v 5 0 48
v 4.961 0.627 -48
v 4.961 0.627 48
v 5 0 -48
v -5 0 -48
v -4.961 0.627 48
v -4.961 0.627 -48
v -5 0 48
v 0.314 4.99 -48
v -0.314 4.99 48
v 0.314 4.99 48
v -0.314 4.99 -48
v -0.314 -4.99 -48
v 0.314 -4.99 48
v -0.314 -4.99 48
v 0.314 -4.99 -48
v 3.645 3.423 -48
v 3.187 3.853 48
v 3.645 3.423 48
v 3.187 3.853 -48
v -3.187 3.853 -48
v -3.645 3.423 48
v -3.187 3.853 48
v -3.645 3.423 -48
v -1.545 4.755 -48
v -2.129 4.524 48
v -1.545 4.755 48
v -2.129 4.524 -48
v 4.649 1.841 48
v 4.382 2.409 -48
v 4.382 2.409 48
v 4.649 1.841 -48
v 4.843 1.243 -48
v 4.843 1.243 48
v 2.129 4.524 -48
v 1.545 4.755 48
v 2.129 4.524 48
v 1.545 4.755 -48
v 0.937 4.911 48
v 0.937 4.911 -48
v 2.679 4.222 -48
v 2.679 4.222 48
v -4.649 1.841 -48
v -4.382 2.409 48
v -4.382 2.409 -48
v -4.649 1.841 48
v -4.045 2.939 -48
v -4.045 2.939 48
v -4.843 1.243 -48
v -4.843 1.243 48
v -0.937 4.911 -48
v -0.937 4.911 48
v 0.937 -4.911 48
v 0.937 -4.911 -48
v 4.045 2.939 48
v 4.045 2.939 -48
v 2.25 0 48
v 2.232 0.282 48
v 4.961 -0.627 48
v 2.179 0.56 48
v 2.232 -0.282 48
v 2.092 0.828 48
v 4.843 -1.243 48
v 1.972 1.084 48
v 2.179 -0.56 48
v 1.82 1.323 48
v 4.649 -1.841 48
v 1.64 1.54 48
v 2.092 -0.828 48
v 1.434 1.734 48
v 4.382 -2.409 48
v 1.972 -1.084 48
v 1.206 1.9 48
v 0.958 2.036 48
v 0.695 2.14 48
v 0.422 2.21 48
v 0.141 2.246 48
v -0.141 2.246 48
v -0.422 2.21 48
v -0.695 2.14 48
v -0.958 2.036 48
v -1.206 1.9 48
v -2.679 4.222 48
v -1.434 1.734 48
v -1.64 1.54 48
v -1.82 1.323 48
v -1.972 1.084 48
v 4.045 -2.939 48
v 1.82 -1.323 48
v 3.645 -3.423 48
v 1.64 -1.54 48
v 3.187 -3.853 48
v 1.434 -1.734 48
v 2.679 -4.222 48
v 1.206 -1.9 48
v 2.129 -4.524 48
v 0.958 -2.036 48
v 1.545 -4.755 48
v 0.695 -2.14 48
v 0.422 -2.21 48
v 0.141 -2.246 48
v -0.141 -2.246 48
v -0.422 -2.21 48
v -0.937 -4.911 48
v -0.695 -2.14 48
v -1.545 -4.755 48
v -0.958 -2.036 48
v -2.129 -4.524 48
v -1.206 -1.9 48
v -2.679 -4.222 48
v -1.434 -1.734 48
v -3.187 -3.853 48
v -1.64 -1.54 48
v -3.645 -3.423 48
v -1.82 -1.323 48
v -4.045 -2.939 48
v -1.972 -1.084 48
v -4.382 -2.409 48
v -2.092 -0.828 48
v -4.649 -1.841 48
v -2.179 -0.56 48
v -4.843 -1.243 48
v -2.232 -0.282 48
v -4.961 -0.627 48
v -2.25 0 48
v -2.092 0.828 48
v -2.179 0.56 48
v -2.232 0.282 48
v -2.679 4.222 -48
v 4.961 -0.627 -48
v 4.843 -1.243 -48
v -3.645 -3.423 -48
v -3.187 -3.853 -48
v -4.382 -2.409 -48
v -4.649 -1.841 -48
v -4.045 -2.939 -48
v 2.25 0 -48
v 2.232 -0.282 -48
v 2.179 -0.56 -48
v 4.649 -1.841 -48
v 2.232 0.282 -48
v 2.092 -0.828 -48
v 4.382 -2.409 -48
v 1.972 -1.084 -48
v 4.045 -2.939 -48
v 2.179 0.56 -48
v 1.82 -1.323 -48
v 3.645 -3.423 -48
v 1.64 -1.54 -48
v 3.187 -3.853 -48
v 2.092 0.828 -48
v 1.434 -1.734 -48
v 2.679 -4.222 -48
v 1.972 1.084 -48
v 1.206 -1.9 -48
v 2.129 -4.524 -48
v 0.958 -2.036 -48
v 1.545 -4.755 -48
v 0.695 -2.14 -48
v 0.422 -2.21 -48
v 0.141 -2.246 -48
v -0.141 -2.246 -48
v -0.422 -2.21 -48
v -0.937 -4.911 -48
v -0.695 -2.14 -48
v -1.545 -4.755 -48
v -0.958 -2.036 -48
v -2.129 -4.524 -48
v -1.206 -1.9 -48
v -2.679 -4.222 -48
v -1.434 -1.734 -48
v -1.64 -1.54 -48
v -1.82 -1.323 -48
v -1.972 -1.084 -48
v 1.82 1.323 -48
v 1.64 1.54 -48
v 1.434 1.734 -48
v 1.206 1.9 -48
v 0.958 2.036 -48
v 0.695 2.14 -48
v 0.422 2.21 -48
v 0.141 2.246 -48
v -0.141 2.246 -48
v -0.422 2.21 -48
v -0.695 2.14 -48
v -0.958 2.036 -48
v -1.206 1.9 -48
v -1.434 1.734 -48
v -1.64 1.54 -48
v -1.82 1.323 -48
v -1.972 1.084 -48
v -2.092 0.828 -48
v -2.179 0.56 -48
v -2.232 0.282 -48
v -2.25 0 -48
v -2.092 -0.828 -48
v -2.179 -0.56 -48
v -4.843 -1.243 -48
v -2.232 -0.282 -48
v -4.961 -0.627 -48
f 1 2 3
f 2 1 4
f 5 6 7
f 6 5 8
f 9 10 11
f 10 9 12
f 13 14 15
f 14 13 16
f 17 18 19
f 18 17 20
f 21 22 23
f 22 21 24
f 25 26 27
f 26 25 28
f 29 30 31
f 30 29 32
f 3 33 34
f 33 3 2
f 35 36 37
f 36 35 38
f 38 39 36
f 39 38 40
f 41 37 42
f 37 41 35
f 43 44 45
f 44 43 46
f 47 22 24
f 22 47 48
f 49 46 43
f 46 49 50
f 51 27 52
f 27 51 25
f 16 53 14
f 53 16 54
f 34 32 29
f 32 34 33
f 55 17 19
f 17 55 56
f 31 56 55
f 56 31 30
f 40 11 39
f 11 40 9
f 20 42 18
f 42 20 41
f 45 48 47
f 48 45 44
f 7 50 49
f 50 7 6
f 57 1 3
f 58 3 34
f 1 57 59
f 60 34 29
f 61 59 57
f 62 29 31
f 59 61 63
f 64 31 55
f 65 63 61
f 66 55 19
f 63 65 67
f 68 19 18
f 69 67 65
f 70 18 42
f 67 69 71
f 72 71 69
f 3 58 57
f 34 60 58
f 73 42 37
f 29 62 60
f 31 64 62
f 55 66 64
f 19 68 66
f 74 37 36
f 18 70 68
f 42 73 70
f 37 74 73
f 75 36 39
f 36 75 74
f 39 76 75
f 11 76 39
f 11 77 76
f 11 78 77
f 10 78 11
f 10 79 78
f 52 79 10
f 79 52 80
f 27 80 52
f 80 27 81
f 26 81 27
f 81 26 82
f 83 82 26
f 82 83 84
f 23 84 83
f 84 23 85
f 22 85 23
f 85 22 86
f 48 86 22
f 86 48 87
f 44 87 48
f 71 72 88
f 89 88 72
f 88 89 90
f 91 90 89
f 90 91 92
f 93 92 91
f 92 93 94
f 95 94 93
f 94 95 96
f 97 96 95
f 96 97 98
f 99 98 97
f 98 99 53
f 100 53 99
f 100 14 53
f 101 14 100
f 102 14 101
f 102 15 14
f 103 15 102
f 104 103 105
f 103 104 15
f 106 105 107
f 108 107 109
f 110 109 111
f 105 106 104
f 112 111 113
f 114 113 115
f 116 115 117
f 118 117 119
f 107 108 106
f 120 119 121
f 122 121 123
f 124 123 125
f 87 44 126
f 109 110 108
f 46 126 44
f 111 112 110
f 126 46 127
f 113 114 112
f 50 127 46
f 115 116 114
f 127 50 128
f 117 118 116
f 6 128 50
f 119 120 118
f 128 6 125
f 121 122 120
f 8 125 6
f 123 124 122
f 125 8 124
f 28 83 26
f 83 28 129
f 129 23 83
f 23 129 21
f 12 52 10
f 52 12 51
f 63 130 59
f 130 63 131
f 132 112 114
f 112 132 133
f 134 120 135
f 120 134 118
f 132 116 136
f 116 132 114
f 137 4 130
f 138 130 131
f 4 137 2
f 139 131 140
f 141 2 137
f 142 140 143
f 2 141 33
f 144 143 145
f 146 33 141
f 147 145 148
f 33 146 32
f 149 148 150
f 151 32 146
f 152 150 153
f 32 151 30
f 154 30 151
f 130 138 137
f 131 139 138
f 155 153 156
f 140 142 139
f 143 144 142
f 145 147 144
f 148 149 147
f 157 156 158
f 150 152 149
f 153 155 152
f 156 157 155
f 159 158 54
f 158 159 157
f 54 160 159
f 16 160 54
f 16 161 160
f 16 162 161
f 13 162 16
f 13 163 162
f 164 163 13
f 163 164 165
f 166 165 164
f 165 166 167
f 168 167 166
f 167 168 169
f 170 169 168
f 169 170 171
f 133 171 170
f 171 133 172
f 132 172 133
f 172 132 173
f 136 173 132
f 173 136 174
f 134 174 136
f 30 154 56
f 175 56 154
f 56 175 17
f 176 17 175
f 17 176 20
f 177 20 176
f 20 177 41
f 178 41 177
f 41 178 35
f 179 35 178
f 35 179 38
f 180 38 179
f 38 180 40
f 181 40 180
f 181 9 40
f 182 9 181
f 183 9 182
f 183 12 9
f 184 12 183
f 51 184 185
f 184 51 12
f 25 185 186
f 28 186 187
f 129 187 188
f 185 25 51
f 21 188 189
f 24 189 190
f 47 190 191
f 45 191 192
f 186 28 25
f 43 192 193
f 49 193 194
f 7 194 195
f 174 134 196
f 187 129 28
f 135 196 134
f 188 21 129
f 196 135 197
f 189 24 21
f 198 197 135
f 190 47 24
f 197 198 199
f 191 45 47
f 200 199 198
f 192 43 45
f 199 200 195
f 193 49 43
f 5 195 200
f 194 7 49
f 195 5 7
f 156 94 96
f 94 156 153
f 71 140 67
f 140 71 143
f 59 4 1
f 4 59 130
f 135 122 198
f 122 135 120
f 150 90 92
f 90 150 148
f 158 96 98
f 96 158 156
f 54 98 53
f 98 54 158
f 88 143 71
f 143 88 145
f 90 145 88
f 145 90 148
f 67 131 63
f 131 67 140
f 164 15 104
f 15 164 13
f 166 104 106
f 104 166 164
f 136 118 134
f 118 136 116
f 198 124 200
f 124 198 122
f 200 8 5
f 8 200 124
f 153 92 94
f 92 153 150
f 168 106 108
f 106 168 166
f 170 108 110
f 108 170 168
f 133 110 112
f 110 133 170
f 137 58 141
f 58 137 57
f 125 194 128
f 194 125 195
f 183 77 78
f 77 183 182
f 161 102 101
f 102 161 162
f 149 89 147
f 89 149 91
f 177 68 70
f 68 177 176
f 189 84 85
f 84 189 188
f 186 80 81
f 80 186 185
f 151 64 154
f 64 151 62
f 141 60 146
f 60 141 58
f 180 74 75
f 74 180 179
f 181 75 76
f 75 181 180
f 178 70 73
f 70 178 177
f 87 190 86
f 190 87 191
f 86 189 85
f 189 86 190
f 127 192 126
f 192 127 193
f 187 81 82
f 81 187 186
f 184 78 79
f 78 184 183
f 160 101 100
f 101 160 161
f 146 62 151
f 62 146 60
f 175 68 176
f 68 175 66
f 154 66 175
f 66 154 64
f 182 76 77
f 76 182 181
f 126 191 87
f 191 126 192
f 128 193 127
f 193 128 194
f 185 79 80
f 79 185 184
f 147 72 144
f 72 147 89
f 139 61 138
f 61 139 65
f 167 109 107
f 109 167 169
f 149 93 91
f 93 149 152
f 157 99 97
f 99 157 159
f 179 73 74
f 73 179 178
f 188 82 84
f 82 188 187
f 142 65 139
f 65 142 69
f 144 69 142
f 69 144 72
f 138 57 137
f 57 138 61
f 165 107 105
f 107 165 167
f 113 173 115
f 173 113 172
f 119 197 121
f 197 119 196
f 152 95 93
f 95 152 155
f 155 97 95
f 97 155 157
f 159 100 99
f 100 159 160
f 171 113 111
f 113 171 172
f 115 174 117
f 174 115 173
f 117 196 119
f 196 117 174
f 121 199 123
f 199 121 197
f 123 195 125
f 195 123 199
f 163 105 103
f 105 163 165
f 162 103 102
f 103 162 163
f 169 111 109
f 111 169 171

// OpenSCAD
$fn = 50;


difference() {
	union() {
		translate(v = [0, 0, -48.0000000000]) {
			cylinder(h = 96, r = 5.0000000000);
		}
	}
	union() {
		translate(v = [0, 0, -100.0000000000]) {
			cylinder(h = 200, r = 2.2500000000);
		}
	}
}
